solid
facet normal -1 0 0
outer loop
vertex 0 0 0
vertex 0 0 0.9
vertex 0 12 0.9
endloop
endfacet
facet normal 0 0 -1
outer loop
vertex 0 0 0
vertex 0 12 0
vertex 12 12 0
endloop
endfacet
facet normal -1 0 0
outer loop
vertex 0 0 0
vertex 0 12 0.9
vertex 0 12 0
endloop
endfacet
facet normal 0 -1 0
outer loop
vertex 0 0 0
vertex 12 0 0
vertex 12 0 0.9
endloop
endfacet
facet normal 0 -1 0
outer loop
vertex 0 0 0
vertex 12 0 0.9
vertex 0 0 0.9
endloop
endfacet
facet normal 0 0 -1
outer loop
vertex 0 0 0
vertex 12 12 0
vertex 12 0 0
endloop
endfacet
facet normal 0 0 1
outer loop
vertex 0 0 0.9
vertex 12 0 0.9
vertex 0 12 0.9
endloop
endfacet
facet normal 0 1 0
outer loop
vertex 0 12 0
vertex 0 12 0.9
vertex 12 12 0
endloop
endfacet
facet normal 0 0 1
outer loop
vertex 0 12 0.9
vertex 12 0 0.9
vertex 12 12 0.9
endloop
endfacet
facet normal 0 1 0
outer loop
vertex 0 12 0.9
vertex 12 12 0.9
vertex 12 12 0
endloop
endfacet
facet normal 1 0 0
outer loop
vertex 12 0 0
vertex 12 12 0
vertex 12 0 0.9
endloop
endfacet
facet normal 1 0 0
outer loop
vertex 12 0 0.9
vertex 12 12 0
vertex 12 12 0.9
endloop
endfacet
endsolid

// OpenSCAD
/* Warning, this is a very basic generator with a lot of approximation 
input data : [VQFN, 8NW, 12x12x0.9mm, 156, , B, C04-00667B]
generated by com.zoubworld.electronics.cad.model3d.Basic
Date : Sun Feb 15 10:50:49 CET 2026
*/

//body
color("black")
translate([0,0,0])
cube([12.0,12.0,0.9], center=false);
